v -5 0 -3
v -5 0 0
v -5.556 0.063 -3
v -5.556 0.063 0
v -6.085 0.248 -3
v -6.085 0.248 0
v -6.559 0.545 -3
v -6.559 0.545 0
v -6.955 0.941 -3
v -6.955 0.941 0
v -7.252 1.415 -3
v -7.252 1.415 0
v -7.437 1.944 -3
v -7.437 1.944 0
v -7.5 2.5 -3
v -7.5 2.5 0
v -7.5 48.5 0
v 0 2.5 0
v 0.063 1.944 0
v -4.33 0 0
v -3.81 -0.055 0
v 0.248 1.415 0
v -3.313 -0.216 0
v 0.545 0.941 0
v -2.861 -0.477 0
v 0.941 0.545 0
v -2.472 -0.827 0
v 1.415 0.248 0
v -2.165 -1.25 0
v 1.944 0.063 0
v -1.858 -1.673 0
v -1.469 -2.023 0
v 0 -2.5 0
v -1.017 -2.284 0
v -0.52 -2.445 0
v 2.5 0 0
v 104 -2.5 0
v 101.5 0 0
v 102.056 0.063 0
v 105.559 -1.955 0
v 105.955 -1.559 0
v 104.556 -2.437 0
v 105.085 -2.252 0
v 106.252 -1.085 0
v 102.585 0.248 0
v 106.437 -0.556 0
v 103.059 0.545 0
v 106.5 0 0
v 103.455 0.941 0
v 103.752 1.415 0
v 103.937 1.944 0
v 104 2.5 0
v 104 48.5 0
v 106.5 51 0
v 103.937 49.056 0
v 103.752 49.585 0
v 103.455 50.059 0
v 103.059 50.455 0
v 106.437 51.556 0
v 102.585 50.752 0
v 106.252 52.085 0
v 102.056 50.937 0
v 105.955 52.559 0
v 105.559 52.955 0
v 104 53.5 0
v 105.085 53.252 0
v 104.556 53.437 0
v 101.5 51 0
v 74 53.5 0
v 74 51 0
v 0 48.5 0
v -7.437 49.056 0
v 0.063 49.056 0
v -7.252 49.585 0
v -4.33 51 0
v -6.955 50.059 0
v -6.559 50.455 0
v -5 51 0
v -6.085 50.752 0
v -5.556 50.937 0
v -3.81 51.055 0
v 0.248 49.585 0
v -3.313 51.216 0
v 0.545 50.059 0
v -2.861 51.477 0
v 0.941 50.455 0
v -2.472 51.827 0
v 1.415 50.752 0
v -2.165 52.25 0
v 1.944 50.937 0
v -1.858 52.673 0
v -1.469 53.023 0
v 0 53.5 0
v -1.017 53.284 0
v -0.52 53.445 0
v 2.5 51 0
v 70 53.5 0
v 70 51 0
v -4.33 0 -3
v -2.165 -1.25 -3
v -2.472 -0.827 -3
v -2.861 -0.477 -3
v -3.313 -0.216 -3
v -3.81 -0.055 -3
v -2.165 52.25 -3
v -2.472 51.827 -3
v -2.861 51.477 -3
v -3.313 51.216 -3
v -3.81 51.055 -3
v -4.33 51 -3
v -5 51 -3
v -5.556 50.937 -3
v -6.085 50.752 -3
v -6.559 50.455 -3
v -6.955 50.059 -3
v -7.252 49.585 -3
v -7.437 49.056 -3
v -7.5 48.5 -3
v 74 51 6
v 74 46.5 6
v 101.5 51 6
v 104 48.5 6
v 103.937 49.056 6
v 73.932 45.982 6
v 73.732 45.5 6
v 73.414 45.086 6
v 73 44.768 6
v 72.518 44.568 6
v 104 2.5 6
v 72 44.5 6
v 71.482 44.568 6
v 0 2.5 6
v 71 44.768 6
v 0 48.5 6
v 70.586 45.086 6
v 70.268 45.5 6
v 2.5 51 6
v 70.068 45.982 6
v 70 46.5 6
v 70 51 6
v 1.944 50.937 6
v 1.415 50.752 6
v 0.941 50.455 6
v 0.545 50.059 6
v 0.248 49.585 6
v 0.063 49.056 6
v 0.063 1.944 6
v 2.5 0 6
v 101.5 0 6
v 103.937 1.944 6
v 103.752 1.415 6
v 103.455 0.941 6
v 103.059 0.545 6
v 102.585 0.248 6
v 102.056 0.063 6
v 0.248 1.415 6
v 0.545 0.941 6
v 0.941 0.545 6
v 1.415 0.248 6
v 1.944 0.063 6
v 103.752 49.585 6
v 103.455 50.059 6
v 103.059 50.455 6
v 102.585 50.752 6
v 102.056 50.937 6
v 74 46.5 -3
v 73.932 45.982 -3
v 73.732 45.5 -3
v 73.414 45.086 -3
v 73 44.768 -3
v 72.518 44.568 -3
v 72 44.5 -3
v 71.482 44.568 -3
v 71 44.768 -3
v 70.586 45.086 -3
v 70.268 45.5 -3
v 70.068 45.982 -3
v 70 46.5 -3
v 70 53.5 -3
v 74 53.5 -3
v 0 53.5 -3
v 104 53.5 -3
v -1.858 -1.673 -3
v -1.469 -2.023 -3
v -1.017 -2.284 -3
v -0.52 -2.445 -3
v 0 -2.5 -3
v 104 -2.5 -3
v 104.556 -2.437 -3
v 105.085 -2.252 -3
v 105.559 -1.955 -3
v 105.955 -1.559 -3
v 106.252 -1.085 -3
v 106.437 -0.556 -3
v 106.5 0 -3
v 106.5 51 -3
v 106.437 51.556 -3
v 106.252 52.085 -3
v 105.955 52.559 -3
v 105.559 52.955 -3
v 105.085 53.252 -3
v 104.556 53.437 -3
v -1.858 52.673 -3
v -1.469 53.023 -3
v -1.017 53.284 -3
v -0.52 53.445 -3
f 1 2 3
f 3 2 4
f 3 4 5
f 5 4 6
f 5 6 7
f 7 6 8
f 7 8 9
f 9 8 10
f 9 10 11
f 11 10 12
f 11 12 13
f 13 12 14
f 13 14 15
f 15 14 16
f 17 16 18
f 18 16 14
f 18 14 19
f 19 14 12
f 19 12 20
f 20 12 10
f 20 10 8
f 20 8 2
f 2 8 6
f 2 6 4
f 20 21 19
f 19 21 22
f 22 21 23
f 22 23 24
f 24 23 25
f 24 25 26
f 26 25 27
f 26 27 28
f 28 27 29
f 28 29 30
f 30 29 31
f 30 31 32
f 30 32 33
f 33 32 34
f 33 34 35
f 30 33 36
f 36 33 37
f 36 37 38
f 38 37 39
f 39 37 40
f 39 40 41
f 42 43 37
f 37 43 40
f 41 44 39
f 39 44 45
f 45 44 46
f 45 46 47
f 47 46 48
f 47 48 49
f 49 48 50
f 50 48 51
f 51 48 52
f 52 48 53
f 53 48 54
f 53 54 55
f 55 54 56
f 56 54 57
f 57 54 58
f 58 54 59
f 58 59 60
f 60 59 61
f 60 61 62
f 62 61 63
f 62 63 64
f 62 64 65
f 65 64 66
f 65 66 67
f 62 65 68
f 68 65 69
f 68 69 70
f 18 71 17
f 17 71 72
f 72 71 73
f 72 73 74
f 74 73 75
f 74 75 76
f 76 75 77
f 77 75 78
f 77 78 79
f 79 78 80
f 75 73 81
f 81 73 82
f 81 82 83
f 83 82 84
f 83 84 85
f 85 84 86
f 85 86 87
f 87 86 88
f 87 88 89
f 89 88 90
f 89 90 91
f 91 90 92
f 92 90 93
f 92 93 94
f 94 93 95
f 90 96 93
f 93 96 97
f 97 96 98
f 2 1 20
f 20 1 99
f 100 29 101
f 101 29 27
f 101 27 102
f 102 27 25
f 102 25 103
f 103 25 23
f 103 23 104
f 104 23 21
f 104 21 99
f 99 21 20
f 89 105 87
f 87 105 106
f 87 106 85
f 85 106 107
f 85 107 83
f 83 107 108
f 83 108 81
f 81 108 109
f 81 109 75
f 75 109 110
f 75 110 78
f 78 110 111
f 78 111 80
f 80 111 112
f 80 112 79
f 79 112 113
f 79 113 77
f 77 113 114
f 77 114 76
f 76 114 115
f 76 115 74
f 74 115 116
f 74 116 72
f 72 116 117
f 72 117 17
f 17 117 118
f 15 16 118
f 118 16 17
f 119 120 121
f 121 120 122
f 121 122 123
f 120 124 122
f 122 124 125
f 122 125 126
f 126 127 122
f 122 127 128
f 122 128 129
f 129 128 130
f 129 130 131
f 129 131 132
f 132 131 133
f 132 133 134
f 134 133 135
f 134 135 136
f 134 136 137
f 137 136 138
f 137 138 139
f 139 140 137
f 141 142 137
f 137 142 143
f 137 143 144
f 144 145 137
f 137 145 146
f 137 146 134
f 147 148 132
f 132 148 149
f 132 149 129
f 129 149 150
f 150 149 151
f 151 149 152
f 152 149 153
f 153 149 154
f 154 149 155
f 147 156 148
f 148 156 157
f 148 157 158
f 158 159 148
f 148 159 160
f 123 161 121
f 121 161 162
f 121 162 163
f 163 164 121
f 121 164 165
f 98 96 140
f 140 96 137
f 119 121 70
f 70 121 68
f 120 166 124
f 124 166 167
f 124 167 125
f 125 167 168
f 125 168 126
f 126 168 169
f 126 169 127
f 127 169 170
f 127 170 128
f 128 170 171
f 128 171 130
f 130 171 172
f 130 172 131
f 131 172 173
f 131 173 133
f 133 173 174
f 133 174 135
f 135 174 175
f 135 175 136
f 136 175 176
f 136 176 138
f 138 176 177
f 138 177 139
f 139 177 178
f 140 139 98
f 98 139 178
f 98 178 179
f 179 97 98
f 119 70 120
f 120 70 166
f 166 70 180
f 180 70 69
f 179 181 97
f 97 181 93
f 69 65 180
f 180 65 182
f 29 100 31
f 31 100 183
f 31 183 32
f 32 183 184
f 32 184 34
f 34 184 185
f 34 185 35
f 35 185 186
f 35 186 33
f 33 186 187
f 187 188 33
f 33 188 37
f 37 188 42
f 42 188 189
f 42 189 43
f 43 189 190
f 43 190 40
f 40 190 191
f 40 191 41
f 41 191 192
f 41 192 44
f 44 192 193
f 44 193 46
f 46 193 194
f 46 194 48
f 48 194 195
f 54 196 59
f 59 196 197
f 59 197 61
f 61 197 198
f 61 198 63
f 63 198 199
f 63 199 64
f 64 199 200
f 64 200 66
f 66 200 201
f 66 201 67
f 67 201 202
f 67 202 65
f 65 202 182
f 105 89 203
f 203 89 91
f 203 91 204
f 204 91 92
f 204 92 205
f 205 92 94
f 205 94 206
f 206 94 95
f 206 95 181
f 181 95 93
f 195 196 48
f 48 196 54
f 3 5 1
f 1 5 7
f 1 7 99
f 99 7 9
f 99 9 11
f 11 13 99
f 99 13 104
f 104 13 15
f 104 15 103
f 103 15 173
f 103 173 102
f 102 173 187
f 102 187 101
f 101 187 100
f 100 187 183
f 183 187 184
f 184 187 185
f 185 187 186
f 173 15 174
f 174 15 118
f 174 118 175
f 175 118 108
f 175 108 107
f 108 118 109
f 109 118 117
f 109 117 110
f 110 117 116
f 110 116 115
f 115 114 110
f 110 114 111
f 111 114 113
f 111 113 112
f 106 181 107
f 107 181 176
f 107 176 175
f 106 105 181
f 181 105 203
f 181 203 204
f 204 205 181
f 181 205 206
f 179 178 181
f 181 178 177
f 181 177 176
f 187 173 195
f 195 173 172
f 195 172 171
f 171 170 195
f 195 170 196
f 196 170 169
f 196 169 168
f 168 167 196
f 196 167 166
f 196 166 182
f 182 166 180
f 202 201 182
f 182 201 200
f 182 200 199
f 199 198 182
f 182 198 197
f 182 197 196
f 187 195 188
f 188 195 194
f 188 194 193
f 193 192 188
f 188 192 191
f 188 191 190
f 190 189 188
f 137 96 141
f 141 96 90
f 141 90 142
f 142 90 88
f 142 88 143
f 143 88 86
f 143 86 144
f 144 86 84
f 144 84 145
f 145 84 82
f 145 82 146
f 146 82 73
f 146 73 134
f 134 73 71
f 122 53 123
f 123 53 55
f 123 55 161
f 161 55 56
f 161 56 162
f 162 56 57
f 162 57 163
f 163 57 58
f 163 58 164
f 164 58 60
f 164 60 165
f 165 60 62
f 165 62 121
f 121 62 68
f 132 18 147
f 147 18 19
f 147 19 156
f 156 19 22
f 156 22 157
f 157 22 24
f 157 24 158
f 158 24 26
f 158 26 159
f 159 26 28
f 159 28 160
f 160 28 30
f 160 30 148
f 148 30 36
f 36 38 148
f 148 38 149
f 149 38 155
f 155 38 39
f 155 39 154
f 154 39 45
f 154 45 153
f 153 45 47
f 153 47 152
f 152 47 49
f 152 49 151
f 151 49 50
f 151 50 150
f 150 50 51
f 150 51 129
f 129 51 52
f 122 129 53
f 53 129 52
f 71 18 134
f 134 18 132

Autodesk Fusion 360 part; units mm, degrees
sketch "Sketch1" plane through (0, 0, 0) normal (0, 0, 1) x (1, 0, 0)
  line L0 (0, 0) -> (104, 0)
  line L1 (104, 0) -> (104, 51)
  line L2 (104, 51) -> (0, 51)
  line L3 (0, 51) -> (0, 0)
  dimension "d1" = 104
  dimension "d2" = 51
extrude "Extrude1" add sketch "Sketch1" along normal blind 4
fillet "Fillet1" radius 2.5 4 edges at (104, 0, 2) (0, 0, 2) (104, 51, 2) (0, 51, 2)
sketch "Sketch2" plane through (0, 0, 4) normal (0, 0, 1) x (-1, 0, 0)
  arc A0 (-2.5, -51) -> (0, -48.5) centre (-2.5, -48.5) ccw
  line L0 (0, -48.5) -> (0, -2.5)
  arc A1 (0, -2.5) -> (-2.5, 0) centre (-2.5, -2.5) ccw
  line L1 (-2.5, 0) -> (-101.5, 0)
  arc A2 (-101.5, 0) -> (-104, -2.5) centre (-101.5, -2.5) ccw
  line L2 (-104, -2.5) -> (-104, -48.5)
  arc A3 (-104, -48.5) -> (-101.5, -51) centre (-101.5, -48.5) ccw
  line L3 (-101.5, -51) -> (-2.5, -51)
sketch "Sketch3" plane through (0, 0, 4) normal (0, 0, 1) x (-1, 0, 0)
  line L0 (2, -53) -> (-106, -53)
  line L1 (-106, -53) -> (-106, 2)
  line L2 (-106, 2) -> (2, 2)
  line L3 (2, 2) -> (2, -53)
  line L4 (-2.5, 0) -> (-101.5, 0)
  line L5 (-104, -2.5) -> (-104, -48.5)
  line L6 (0, -48.5) -> (0, -2.5)
  line L7 (-101.5, -51) -> (-2.5, -51)
  dimension "d7" = 2
  dimension "d8" = 2
  dimension "d9" = 2
  dimension "d10" = 2
sketch "Sketch6" plane through (0, 0, 0) normal (0, 0, 1) x (1, 0, 0)
  line L0 (-2.5, -2.5) -> (106.5, -2.5)
  line L1 (106.5, -2.5) -> (106.5, 53.5)
  line L2 (106.5, 53.5) -> (-2.5, 53.5)
  line L3 (-2.5, 53.5) -> (-2.5, -2.5)
  line L4 (2.5, 0) -> (101.5, 0)
  line L5 (104, 2.5) -> (104, 48.5)
  line L6 (101.5, 51) -> (2.5, 51)
  line L7 (0, 48.5) -> (0, 2.5)
  dimension "d15" = 2.5
  dimension "d16" = 2.5
  dimension "d17" = 2.5
  dimension "d18" = 2.5
extrude "Extrude3" add sketch "Sketch6" against normal blind 3
fillet "Fillet3" radius 2.5 4 edges at (-2.5, 53.5, -1.5) (106.5, 53.5, -1.5) (106.5, -2.5, -1.5) (-2.5, -2.5, -1.5)
sketch "Sketch7" plane through (0, 0, 4) normal (0, 0, 1) x (-1, 0, 0)
  circle A0 centre (-34, -46.5) radius 2.5
  line L0 (-104, -2.5) -> (-104, -48.5)
  line L1 (-101.5, -51) -> (-2.5, -51)
  line L2 (-36.5, -46.5) -> (-36.5, -51)
  line L3 (-31.5, -46.5) -> (-31.5, -51)
  dimension "d23" = 5
  dimension "d24" = 70
  dimension "d25" = 4.5
extrude "Extrude4" cut sketch "Sketch7" against normal blind 11
sketch "Sketch8" plane through (0, 0, -3) normal (0, 0, -1) x (1, 0, 0)
  line L0 (36.5, -51) -> (31.5, -51)
  line L1 (31.5, -51) -> (31.5, -46.5)
  arc A0 (36.5, -46.5) -> (31.5, -46.5) centre (34, -46.5) ccw
  line L2 (36.5, -46.5) -> (36.5, -51)
  arc A1 (0, 2.5) -> (-2.5, 0) centre (0, 0) ccw
  line L3 (-2.5, 0) -> (-2.5, -51)
  arc A2 (-2.5, -51) -> (0, -53.5) centre (0, -51) ccw
  line L4 (0, -53.5) -> (104, -53.5)
  arc A3 (104, -53.5) -> (106.5, -51) centre (104, -51) ccw
  line L5 (106.5, -51) -> (106.5, 0)
  arc A4 (106.5, 0) -> (104, 2.5) centre (104, 0) ccw
  line L6 (104, 2.5) -> (0, 2.5)
  line L7 (31.5, -51) -> (31.5, -53.5)
  line L8 (36.5, -51) -> (36.5, -53.5)
extrude "Extrude5" cut sketch "Sketch8" against normal blind 4 contours L0 L4 L7 L8
sketch "Sketch9" plane through (0, 0, 4) normal (0, 0, 1) x (-1, 0, 0)
sketch "Sketch10" plane through (0, 0, 4) normal (0, 0, 1) x (-1, 0, 0)
sketch "Sketch11" plane through (0, 0, -3) normal (0, 0, -1) x (1, 0, 0)
  line L0 (36.5, -46.5) -> (36.5, -53.5)
  line L1 (36.5, -53.5) -> (104, -53.5)
  arc A0 (104, -53.5) -> (106.5, -51) centre (104, -51) ccw
  line L2 (106.5, -51) -> (106.5, 0)
  arc A1 (106.5, 0) -> (104, 2.5) centre (104, 0) ccw
  line L3 (104, 2.5) -> (0, 2.5)
  arc A2 (0, 2.5) -> (-2.5, 0) centre (0, 0) ccw
  line L4 (-2.5, 0) -> (-2.5, -51)
  arc A3 (-2.5, -51) -> (0, -53.5) centre (0, -51) ccw
  line L5 (0, -53.5) -> (31.5, -53.5)
  line L6 (31.5, -53.5) -> (31.5, -46.5)
  arc A4 (36.5, -46.5) -> (31.5, -46.5) centre (34, -46.5) ccw
  line L7 (70, -53.5) -> (74, -53.5)
  line L8 (74, -53.5) -> (74, -46.5)
  line L9 (74, -46.5) -> (70, -46.5)
  line L10 (70, -46.5) -> (70, -53.5)
  circle A5 centre (72, -46.5) radius 2
  dimension "d30" = 32.5
  dimension "d31" = 4
  dimension "d32" = 7
extrude "Extrude6" cut sketch "Sketch11" against normal blind 9 contours L1 L7 L8 L10 A5 | L9 A5 | L9 A5
extrude "Extrude7" add sketch "Sketch7" against normal blind 7
extrude "Extrude8" add sketch "Sketch8" against normal blind 3 contours L0 L4 L7 L8
extrude "Extrude9" add sketch "Sketch2" along normal blind 2
extrude "Extrude10" cut 1 faces at (71.3333, 49.5, 4) along direction (0, 0, 1) blind 9
extrude "Extrude11" add 1 faces at (-2.5, 34, -1) along direction (-1, 0, 0) blind 5
fillet "Fillet4" radius 2.5 4 edges at (-7.5, 51, -1.5) (-2.5, 51, -1.5) (-2.5, 0, -1.5) (-7.5, 0, -1.5)
sketch "Sketch12" plane through (0, 0, 0) normal (0, 1, 0) x (1, 0, 0)
extrude "Extrude12" [suppressed]
extrude "Extrude2" [suppressed]
fillet "Fillet2" [suppressed]
sketch "Sketch4" plane through (0, 0, 0) normal (0, 0, 1) x (1, 0, 0)
sketch "Sketch5" plane through (0, 0, 0) normal (0, 0, 1) x (1, 0, 0)
